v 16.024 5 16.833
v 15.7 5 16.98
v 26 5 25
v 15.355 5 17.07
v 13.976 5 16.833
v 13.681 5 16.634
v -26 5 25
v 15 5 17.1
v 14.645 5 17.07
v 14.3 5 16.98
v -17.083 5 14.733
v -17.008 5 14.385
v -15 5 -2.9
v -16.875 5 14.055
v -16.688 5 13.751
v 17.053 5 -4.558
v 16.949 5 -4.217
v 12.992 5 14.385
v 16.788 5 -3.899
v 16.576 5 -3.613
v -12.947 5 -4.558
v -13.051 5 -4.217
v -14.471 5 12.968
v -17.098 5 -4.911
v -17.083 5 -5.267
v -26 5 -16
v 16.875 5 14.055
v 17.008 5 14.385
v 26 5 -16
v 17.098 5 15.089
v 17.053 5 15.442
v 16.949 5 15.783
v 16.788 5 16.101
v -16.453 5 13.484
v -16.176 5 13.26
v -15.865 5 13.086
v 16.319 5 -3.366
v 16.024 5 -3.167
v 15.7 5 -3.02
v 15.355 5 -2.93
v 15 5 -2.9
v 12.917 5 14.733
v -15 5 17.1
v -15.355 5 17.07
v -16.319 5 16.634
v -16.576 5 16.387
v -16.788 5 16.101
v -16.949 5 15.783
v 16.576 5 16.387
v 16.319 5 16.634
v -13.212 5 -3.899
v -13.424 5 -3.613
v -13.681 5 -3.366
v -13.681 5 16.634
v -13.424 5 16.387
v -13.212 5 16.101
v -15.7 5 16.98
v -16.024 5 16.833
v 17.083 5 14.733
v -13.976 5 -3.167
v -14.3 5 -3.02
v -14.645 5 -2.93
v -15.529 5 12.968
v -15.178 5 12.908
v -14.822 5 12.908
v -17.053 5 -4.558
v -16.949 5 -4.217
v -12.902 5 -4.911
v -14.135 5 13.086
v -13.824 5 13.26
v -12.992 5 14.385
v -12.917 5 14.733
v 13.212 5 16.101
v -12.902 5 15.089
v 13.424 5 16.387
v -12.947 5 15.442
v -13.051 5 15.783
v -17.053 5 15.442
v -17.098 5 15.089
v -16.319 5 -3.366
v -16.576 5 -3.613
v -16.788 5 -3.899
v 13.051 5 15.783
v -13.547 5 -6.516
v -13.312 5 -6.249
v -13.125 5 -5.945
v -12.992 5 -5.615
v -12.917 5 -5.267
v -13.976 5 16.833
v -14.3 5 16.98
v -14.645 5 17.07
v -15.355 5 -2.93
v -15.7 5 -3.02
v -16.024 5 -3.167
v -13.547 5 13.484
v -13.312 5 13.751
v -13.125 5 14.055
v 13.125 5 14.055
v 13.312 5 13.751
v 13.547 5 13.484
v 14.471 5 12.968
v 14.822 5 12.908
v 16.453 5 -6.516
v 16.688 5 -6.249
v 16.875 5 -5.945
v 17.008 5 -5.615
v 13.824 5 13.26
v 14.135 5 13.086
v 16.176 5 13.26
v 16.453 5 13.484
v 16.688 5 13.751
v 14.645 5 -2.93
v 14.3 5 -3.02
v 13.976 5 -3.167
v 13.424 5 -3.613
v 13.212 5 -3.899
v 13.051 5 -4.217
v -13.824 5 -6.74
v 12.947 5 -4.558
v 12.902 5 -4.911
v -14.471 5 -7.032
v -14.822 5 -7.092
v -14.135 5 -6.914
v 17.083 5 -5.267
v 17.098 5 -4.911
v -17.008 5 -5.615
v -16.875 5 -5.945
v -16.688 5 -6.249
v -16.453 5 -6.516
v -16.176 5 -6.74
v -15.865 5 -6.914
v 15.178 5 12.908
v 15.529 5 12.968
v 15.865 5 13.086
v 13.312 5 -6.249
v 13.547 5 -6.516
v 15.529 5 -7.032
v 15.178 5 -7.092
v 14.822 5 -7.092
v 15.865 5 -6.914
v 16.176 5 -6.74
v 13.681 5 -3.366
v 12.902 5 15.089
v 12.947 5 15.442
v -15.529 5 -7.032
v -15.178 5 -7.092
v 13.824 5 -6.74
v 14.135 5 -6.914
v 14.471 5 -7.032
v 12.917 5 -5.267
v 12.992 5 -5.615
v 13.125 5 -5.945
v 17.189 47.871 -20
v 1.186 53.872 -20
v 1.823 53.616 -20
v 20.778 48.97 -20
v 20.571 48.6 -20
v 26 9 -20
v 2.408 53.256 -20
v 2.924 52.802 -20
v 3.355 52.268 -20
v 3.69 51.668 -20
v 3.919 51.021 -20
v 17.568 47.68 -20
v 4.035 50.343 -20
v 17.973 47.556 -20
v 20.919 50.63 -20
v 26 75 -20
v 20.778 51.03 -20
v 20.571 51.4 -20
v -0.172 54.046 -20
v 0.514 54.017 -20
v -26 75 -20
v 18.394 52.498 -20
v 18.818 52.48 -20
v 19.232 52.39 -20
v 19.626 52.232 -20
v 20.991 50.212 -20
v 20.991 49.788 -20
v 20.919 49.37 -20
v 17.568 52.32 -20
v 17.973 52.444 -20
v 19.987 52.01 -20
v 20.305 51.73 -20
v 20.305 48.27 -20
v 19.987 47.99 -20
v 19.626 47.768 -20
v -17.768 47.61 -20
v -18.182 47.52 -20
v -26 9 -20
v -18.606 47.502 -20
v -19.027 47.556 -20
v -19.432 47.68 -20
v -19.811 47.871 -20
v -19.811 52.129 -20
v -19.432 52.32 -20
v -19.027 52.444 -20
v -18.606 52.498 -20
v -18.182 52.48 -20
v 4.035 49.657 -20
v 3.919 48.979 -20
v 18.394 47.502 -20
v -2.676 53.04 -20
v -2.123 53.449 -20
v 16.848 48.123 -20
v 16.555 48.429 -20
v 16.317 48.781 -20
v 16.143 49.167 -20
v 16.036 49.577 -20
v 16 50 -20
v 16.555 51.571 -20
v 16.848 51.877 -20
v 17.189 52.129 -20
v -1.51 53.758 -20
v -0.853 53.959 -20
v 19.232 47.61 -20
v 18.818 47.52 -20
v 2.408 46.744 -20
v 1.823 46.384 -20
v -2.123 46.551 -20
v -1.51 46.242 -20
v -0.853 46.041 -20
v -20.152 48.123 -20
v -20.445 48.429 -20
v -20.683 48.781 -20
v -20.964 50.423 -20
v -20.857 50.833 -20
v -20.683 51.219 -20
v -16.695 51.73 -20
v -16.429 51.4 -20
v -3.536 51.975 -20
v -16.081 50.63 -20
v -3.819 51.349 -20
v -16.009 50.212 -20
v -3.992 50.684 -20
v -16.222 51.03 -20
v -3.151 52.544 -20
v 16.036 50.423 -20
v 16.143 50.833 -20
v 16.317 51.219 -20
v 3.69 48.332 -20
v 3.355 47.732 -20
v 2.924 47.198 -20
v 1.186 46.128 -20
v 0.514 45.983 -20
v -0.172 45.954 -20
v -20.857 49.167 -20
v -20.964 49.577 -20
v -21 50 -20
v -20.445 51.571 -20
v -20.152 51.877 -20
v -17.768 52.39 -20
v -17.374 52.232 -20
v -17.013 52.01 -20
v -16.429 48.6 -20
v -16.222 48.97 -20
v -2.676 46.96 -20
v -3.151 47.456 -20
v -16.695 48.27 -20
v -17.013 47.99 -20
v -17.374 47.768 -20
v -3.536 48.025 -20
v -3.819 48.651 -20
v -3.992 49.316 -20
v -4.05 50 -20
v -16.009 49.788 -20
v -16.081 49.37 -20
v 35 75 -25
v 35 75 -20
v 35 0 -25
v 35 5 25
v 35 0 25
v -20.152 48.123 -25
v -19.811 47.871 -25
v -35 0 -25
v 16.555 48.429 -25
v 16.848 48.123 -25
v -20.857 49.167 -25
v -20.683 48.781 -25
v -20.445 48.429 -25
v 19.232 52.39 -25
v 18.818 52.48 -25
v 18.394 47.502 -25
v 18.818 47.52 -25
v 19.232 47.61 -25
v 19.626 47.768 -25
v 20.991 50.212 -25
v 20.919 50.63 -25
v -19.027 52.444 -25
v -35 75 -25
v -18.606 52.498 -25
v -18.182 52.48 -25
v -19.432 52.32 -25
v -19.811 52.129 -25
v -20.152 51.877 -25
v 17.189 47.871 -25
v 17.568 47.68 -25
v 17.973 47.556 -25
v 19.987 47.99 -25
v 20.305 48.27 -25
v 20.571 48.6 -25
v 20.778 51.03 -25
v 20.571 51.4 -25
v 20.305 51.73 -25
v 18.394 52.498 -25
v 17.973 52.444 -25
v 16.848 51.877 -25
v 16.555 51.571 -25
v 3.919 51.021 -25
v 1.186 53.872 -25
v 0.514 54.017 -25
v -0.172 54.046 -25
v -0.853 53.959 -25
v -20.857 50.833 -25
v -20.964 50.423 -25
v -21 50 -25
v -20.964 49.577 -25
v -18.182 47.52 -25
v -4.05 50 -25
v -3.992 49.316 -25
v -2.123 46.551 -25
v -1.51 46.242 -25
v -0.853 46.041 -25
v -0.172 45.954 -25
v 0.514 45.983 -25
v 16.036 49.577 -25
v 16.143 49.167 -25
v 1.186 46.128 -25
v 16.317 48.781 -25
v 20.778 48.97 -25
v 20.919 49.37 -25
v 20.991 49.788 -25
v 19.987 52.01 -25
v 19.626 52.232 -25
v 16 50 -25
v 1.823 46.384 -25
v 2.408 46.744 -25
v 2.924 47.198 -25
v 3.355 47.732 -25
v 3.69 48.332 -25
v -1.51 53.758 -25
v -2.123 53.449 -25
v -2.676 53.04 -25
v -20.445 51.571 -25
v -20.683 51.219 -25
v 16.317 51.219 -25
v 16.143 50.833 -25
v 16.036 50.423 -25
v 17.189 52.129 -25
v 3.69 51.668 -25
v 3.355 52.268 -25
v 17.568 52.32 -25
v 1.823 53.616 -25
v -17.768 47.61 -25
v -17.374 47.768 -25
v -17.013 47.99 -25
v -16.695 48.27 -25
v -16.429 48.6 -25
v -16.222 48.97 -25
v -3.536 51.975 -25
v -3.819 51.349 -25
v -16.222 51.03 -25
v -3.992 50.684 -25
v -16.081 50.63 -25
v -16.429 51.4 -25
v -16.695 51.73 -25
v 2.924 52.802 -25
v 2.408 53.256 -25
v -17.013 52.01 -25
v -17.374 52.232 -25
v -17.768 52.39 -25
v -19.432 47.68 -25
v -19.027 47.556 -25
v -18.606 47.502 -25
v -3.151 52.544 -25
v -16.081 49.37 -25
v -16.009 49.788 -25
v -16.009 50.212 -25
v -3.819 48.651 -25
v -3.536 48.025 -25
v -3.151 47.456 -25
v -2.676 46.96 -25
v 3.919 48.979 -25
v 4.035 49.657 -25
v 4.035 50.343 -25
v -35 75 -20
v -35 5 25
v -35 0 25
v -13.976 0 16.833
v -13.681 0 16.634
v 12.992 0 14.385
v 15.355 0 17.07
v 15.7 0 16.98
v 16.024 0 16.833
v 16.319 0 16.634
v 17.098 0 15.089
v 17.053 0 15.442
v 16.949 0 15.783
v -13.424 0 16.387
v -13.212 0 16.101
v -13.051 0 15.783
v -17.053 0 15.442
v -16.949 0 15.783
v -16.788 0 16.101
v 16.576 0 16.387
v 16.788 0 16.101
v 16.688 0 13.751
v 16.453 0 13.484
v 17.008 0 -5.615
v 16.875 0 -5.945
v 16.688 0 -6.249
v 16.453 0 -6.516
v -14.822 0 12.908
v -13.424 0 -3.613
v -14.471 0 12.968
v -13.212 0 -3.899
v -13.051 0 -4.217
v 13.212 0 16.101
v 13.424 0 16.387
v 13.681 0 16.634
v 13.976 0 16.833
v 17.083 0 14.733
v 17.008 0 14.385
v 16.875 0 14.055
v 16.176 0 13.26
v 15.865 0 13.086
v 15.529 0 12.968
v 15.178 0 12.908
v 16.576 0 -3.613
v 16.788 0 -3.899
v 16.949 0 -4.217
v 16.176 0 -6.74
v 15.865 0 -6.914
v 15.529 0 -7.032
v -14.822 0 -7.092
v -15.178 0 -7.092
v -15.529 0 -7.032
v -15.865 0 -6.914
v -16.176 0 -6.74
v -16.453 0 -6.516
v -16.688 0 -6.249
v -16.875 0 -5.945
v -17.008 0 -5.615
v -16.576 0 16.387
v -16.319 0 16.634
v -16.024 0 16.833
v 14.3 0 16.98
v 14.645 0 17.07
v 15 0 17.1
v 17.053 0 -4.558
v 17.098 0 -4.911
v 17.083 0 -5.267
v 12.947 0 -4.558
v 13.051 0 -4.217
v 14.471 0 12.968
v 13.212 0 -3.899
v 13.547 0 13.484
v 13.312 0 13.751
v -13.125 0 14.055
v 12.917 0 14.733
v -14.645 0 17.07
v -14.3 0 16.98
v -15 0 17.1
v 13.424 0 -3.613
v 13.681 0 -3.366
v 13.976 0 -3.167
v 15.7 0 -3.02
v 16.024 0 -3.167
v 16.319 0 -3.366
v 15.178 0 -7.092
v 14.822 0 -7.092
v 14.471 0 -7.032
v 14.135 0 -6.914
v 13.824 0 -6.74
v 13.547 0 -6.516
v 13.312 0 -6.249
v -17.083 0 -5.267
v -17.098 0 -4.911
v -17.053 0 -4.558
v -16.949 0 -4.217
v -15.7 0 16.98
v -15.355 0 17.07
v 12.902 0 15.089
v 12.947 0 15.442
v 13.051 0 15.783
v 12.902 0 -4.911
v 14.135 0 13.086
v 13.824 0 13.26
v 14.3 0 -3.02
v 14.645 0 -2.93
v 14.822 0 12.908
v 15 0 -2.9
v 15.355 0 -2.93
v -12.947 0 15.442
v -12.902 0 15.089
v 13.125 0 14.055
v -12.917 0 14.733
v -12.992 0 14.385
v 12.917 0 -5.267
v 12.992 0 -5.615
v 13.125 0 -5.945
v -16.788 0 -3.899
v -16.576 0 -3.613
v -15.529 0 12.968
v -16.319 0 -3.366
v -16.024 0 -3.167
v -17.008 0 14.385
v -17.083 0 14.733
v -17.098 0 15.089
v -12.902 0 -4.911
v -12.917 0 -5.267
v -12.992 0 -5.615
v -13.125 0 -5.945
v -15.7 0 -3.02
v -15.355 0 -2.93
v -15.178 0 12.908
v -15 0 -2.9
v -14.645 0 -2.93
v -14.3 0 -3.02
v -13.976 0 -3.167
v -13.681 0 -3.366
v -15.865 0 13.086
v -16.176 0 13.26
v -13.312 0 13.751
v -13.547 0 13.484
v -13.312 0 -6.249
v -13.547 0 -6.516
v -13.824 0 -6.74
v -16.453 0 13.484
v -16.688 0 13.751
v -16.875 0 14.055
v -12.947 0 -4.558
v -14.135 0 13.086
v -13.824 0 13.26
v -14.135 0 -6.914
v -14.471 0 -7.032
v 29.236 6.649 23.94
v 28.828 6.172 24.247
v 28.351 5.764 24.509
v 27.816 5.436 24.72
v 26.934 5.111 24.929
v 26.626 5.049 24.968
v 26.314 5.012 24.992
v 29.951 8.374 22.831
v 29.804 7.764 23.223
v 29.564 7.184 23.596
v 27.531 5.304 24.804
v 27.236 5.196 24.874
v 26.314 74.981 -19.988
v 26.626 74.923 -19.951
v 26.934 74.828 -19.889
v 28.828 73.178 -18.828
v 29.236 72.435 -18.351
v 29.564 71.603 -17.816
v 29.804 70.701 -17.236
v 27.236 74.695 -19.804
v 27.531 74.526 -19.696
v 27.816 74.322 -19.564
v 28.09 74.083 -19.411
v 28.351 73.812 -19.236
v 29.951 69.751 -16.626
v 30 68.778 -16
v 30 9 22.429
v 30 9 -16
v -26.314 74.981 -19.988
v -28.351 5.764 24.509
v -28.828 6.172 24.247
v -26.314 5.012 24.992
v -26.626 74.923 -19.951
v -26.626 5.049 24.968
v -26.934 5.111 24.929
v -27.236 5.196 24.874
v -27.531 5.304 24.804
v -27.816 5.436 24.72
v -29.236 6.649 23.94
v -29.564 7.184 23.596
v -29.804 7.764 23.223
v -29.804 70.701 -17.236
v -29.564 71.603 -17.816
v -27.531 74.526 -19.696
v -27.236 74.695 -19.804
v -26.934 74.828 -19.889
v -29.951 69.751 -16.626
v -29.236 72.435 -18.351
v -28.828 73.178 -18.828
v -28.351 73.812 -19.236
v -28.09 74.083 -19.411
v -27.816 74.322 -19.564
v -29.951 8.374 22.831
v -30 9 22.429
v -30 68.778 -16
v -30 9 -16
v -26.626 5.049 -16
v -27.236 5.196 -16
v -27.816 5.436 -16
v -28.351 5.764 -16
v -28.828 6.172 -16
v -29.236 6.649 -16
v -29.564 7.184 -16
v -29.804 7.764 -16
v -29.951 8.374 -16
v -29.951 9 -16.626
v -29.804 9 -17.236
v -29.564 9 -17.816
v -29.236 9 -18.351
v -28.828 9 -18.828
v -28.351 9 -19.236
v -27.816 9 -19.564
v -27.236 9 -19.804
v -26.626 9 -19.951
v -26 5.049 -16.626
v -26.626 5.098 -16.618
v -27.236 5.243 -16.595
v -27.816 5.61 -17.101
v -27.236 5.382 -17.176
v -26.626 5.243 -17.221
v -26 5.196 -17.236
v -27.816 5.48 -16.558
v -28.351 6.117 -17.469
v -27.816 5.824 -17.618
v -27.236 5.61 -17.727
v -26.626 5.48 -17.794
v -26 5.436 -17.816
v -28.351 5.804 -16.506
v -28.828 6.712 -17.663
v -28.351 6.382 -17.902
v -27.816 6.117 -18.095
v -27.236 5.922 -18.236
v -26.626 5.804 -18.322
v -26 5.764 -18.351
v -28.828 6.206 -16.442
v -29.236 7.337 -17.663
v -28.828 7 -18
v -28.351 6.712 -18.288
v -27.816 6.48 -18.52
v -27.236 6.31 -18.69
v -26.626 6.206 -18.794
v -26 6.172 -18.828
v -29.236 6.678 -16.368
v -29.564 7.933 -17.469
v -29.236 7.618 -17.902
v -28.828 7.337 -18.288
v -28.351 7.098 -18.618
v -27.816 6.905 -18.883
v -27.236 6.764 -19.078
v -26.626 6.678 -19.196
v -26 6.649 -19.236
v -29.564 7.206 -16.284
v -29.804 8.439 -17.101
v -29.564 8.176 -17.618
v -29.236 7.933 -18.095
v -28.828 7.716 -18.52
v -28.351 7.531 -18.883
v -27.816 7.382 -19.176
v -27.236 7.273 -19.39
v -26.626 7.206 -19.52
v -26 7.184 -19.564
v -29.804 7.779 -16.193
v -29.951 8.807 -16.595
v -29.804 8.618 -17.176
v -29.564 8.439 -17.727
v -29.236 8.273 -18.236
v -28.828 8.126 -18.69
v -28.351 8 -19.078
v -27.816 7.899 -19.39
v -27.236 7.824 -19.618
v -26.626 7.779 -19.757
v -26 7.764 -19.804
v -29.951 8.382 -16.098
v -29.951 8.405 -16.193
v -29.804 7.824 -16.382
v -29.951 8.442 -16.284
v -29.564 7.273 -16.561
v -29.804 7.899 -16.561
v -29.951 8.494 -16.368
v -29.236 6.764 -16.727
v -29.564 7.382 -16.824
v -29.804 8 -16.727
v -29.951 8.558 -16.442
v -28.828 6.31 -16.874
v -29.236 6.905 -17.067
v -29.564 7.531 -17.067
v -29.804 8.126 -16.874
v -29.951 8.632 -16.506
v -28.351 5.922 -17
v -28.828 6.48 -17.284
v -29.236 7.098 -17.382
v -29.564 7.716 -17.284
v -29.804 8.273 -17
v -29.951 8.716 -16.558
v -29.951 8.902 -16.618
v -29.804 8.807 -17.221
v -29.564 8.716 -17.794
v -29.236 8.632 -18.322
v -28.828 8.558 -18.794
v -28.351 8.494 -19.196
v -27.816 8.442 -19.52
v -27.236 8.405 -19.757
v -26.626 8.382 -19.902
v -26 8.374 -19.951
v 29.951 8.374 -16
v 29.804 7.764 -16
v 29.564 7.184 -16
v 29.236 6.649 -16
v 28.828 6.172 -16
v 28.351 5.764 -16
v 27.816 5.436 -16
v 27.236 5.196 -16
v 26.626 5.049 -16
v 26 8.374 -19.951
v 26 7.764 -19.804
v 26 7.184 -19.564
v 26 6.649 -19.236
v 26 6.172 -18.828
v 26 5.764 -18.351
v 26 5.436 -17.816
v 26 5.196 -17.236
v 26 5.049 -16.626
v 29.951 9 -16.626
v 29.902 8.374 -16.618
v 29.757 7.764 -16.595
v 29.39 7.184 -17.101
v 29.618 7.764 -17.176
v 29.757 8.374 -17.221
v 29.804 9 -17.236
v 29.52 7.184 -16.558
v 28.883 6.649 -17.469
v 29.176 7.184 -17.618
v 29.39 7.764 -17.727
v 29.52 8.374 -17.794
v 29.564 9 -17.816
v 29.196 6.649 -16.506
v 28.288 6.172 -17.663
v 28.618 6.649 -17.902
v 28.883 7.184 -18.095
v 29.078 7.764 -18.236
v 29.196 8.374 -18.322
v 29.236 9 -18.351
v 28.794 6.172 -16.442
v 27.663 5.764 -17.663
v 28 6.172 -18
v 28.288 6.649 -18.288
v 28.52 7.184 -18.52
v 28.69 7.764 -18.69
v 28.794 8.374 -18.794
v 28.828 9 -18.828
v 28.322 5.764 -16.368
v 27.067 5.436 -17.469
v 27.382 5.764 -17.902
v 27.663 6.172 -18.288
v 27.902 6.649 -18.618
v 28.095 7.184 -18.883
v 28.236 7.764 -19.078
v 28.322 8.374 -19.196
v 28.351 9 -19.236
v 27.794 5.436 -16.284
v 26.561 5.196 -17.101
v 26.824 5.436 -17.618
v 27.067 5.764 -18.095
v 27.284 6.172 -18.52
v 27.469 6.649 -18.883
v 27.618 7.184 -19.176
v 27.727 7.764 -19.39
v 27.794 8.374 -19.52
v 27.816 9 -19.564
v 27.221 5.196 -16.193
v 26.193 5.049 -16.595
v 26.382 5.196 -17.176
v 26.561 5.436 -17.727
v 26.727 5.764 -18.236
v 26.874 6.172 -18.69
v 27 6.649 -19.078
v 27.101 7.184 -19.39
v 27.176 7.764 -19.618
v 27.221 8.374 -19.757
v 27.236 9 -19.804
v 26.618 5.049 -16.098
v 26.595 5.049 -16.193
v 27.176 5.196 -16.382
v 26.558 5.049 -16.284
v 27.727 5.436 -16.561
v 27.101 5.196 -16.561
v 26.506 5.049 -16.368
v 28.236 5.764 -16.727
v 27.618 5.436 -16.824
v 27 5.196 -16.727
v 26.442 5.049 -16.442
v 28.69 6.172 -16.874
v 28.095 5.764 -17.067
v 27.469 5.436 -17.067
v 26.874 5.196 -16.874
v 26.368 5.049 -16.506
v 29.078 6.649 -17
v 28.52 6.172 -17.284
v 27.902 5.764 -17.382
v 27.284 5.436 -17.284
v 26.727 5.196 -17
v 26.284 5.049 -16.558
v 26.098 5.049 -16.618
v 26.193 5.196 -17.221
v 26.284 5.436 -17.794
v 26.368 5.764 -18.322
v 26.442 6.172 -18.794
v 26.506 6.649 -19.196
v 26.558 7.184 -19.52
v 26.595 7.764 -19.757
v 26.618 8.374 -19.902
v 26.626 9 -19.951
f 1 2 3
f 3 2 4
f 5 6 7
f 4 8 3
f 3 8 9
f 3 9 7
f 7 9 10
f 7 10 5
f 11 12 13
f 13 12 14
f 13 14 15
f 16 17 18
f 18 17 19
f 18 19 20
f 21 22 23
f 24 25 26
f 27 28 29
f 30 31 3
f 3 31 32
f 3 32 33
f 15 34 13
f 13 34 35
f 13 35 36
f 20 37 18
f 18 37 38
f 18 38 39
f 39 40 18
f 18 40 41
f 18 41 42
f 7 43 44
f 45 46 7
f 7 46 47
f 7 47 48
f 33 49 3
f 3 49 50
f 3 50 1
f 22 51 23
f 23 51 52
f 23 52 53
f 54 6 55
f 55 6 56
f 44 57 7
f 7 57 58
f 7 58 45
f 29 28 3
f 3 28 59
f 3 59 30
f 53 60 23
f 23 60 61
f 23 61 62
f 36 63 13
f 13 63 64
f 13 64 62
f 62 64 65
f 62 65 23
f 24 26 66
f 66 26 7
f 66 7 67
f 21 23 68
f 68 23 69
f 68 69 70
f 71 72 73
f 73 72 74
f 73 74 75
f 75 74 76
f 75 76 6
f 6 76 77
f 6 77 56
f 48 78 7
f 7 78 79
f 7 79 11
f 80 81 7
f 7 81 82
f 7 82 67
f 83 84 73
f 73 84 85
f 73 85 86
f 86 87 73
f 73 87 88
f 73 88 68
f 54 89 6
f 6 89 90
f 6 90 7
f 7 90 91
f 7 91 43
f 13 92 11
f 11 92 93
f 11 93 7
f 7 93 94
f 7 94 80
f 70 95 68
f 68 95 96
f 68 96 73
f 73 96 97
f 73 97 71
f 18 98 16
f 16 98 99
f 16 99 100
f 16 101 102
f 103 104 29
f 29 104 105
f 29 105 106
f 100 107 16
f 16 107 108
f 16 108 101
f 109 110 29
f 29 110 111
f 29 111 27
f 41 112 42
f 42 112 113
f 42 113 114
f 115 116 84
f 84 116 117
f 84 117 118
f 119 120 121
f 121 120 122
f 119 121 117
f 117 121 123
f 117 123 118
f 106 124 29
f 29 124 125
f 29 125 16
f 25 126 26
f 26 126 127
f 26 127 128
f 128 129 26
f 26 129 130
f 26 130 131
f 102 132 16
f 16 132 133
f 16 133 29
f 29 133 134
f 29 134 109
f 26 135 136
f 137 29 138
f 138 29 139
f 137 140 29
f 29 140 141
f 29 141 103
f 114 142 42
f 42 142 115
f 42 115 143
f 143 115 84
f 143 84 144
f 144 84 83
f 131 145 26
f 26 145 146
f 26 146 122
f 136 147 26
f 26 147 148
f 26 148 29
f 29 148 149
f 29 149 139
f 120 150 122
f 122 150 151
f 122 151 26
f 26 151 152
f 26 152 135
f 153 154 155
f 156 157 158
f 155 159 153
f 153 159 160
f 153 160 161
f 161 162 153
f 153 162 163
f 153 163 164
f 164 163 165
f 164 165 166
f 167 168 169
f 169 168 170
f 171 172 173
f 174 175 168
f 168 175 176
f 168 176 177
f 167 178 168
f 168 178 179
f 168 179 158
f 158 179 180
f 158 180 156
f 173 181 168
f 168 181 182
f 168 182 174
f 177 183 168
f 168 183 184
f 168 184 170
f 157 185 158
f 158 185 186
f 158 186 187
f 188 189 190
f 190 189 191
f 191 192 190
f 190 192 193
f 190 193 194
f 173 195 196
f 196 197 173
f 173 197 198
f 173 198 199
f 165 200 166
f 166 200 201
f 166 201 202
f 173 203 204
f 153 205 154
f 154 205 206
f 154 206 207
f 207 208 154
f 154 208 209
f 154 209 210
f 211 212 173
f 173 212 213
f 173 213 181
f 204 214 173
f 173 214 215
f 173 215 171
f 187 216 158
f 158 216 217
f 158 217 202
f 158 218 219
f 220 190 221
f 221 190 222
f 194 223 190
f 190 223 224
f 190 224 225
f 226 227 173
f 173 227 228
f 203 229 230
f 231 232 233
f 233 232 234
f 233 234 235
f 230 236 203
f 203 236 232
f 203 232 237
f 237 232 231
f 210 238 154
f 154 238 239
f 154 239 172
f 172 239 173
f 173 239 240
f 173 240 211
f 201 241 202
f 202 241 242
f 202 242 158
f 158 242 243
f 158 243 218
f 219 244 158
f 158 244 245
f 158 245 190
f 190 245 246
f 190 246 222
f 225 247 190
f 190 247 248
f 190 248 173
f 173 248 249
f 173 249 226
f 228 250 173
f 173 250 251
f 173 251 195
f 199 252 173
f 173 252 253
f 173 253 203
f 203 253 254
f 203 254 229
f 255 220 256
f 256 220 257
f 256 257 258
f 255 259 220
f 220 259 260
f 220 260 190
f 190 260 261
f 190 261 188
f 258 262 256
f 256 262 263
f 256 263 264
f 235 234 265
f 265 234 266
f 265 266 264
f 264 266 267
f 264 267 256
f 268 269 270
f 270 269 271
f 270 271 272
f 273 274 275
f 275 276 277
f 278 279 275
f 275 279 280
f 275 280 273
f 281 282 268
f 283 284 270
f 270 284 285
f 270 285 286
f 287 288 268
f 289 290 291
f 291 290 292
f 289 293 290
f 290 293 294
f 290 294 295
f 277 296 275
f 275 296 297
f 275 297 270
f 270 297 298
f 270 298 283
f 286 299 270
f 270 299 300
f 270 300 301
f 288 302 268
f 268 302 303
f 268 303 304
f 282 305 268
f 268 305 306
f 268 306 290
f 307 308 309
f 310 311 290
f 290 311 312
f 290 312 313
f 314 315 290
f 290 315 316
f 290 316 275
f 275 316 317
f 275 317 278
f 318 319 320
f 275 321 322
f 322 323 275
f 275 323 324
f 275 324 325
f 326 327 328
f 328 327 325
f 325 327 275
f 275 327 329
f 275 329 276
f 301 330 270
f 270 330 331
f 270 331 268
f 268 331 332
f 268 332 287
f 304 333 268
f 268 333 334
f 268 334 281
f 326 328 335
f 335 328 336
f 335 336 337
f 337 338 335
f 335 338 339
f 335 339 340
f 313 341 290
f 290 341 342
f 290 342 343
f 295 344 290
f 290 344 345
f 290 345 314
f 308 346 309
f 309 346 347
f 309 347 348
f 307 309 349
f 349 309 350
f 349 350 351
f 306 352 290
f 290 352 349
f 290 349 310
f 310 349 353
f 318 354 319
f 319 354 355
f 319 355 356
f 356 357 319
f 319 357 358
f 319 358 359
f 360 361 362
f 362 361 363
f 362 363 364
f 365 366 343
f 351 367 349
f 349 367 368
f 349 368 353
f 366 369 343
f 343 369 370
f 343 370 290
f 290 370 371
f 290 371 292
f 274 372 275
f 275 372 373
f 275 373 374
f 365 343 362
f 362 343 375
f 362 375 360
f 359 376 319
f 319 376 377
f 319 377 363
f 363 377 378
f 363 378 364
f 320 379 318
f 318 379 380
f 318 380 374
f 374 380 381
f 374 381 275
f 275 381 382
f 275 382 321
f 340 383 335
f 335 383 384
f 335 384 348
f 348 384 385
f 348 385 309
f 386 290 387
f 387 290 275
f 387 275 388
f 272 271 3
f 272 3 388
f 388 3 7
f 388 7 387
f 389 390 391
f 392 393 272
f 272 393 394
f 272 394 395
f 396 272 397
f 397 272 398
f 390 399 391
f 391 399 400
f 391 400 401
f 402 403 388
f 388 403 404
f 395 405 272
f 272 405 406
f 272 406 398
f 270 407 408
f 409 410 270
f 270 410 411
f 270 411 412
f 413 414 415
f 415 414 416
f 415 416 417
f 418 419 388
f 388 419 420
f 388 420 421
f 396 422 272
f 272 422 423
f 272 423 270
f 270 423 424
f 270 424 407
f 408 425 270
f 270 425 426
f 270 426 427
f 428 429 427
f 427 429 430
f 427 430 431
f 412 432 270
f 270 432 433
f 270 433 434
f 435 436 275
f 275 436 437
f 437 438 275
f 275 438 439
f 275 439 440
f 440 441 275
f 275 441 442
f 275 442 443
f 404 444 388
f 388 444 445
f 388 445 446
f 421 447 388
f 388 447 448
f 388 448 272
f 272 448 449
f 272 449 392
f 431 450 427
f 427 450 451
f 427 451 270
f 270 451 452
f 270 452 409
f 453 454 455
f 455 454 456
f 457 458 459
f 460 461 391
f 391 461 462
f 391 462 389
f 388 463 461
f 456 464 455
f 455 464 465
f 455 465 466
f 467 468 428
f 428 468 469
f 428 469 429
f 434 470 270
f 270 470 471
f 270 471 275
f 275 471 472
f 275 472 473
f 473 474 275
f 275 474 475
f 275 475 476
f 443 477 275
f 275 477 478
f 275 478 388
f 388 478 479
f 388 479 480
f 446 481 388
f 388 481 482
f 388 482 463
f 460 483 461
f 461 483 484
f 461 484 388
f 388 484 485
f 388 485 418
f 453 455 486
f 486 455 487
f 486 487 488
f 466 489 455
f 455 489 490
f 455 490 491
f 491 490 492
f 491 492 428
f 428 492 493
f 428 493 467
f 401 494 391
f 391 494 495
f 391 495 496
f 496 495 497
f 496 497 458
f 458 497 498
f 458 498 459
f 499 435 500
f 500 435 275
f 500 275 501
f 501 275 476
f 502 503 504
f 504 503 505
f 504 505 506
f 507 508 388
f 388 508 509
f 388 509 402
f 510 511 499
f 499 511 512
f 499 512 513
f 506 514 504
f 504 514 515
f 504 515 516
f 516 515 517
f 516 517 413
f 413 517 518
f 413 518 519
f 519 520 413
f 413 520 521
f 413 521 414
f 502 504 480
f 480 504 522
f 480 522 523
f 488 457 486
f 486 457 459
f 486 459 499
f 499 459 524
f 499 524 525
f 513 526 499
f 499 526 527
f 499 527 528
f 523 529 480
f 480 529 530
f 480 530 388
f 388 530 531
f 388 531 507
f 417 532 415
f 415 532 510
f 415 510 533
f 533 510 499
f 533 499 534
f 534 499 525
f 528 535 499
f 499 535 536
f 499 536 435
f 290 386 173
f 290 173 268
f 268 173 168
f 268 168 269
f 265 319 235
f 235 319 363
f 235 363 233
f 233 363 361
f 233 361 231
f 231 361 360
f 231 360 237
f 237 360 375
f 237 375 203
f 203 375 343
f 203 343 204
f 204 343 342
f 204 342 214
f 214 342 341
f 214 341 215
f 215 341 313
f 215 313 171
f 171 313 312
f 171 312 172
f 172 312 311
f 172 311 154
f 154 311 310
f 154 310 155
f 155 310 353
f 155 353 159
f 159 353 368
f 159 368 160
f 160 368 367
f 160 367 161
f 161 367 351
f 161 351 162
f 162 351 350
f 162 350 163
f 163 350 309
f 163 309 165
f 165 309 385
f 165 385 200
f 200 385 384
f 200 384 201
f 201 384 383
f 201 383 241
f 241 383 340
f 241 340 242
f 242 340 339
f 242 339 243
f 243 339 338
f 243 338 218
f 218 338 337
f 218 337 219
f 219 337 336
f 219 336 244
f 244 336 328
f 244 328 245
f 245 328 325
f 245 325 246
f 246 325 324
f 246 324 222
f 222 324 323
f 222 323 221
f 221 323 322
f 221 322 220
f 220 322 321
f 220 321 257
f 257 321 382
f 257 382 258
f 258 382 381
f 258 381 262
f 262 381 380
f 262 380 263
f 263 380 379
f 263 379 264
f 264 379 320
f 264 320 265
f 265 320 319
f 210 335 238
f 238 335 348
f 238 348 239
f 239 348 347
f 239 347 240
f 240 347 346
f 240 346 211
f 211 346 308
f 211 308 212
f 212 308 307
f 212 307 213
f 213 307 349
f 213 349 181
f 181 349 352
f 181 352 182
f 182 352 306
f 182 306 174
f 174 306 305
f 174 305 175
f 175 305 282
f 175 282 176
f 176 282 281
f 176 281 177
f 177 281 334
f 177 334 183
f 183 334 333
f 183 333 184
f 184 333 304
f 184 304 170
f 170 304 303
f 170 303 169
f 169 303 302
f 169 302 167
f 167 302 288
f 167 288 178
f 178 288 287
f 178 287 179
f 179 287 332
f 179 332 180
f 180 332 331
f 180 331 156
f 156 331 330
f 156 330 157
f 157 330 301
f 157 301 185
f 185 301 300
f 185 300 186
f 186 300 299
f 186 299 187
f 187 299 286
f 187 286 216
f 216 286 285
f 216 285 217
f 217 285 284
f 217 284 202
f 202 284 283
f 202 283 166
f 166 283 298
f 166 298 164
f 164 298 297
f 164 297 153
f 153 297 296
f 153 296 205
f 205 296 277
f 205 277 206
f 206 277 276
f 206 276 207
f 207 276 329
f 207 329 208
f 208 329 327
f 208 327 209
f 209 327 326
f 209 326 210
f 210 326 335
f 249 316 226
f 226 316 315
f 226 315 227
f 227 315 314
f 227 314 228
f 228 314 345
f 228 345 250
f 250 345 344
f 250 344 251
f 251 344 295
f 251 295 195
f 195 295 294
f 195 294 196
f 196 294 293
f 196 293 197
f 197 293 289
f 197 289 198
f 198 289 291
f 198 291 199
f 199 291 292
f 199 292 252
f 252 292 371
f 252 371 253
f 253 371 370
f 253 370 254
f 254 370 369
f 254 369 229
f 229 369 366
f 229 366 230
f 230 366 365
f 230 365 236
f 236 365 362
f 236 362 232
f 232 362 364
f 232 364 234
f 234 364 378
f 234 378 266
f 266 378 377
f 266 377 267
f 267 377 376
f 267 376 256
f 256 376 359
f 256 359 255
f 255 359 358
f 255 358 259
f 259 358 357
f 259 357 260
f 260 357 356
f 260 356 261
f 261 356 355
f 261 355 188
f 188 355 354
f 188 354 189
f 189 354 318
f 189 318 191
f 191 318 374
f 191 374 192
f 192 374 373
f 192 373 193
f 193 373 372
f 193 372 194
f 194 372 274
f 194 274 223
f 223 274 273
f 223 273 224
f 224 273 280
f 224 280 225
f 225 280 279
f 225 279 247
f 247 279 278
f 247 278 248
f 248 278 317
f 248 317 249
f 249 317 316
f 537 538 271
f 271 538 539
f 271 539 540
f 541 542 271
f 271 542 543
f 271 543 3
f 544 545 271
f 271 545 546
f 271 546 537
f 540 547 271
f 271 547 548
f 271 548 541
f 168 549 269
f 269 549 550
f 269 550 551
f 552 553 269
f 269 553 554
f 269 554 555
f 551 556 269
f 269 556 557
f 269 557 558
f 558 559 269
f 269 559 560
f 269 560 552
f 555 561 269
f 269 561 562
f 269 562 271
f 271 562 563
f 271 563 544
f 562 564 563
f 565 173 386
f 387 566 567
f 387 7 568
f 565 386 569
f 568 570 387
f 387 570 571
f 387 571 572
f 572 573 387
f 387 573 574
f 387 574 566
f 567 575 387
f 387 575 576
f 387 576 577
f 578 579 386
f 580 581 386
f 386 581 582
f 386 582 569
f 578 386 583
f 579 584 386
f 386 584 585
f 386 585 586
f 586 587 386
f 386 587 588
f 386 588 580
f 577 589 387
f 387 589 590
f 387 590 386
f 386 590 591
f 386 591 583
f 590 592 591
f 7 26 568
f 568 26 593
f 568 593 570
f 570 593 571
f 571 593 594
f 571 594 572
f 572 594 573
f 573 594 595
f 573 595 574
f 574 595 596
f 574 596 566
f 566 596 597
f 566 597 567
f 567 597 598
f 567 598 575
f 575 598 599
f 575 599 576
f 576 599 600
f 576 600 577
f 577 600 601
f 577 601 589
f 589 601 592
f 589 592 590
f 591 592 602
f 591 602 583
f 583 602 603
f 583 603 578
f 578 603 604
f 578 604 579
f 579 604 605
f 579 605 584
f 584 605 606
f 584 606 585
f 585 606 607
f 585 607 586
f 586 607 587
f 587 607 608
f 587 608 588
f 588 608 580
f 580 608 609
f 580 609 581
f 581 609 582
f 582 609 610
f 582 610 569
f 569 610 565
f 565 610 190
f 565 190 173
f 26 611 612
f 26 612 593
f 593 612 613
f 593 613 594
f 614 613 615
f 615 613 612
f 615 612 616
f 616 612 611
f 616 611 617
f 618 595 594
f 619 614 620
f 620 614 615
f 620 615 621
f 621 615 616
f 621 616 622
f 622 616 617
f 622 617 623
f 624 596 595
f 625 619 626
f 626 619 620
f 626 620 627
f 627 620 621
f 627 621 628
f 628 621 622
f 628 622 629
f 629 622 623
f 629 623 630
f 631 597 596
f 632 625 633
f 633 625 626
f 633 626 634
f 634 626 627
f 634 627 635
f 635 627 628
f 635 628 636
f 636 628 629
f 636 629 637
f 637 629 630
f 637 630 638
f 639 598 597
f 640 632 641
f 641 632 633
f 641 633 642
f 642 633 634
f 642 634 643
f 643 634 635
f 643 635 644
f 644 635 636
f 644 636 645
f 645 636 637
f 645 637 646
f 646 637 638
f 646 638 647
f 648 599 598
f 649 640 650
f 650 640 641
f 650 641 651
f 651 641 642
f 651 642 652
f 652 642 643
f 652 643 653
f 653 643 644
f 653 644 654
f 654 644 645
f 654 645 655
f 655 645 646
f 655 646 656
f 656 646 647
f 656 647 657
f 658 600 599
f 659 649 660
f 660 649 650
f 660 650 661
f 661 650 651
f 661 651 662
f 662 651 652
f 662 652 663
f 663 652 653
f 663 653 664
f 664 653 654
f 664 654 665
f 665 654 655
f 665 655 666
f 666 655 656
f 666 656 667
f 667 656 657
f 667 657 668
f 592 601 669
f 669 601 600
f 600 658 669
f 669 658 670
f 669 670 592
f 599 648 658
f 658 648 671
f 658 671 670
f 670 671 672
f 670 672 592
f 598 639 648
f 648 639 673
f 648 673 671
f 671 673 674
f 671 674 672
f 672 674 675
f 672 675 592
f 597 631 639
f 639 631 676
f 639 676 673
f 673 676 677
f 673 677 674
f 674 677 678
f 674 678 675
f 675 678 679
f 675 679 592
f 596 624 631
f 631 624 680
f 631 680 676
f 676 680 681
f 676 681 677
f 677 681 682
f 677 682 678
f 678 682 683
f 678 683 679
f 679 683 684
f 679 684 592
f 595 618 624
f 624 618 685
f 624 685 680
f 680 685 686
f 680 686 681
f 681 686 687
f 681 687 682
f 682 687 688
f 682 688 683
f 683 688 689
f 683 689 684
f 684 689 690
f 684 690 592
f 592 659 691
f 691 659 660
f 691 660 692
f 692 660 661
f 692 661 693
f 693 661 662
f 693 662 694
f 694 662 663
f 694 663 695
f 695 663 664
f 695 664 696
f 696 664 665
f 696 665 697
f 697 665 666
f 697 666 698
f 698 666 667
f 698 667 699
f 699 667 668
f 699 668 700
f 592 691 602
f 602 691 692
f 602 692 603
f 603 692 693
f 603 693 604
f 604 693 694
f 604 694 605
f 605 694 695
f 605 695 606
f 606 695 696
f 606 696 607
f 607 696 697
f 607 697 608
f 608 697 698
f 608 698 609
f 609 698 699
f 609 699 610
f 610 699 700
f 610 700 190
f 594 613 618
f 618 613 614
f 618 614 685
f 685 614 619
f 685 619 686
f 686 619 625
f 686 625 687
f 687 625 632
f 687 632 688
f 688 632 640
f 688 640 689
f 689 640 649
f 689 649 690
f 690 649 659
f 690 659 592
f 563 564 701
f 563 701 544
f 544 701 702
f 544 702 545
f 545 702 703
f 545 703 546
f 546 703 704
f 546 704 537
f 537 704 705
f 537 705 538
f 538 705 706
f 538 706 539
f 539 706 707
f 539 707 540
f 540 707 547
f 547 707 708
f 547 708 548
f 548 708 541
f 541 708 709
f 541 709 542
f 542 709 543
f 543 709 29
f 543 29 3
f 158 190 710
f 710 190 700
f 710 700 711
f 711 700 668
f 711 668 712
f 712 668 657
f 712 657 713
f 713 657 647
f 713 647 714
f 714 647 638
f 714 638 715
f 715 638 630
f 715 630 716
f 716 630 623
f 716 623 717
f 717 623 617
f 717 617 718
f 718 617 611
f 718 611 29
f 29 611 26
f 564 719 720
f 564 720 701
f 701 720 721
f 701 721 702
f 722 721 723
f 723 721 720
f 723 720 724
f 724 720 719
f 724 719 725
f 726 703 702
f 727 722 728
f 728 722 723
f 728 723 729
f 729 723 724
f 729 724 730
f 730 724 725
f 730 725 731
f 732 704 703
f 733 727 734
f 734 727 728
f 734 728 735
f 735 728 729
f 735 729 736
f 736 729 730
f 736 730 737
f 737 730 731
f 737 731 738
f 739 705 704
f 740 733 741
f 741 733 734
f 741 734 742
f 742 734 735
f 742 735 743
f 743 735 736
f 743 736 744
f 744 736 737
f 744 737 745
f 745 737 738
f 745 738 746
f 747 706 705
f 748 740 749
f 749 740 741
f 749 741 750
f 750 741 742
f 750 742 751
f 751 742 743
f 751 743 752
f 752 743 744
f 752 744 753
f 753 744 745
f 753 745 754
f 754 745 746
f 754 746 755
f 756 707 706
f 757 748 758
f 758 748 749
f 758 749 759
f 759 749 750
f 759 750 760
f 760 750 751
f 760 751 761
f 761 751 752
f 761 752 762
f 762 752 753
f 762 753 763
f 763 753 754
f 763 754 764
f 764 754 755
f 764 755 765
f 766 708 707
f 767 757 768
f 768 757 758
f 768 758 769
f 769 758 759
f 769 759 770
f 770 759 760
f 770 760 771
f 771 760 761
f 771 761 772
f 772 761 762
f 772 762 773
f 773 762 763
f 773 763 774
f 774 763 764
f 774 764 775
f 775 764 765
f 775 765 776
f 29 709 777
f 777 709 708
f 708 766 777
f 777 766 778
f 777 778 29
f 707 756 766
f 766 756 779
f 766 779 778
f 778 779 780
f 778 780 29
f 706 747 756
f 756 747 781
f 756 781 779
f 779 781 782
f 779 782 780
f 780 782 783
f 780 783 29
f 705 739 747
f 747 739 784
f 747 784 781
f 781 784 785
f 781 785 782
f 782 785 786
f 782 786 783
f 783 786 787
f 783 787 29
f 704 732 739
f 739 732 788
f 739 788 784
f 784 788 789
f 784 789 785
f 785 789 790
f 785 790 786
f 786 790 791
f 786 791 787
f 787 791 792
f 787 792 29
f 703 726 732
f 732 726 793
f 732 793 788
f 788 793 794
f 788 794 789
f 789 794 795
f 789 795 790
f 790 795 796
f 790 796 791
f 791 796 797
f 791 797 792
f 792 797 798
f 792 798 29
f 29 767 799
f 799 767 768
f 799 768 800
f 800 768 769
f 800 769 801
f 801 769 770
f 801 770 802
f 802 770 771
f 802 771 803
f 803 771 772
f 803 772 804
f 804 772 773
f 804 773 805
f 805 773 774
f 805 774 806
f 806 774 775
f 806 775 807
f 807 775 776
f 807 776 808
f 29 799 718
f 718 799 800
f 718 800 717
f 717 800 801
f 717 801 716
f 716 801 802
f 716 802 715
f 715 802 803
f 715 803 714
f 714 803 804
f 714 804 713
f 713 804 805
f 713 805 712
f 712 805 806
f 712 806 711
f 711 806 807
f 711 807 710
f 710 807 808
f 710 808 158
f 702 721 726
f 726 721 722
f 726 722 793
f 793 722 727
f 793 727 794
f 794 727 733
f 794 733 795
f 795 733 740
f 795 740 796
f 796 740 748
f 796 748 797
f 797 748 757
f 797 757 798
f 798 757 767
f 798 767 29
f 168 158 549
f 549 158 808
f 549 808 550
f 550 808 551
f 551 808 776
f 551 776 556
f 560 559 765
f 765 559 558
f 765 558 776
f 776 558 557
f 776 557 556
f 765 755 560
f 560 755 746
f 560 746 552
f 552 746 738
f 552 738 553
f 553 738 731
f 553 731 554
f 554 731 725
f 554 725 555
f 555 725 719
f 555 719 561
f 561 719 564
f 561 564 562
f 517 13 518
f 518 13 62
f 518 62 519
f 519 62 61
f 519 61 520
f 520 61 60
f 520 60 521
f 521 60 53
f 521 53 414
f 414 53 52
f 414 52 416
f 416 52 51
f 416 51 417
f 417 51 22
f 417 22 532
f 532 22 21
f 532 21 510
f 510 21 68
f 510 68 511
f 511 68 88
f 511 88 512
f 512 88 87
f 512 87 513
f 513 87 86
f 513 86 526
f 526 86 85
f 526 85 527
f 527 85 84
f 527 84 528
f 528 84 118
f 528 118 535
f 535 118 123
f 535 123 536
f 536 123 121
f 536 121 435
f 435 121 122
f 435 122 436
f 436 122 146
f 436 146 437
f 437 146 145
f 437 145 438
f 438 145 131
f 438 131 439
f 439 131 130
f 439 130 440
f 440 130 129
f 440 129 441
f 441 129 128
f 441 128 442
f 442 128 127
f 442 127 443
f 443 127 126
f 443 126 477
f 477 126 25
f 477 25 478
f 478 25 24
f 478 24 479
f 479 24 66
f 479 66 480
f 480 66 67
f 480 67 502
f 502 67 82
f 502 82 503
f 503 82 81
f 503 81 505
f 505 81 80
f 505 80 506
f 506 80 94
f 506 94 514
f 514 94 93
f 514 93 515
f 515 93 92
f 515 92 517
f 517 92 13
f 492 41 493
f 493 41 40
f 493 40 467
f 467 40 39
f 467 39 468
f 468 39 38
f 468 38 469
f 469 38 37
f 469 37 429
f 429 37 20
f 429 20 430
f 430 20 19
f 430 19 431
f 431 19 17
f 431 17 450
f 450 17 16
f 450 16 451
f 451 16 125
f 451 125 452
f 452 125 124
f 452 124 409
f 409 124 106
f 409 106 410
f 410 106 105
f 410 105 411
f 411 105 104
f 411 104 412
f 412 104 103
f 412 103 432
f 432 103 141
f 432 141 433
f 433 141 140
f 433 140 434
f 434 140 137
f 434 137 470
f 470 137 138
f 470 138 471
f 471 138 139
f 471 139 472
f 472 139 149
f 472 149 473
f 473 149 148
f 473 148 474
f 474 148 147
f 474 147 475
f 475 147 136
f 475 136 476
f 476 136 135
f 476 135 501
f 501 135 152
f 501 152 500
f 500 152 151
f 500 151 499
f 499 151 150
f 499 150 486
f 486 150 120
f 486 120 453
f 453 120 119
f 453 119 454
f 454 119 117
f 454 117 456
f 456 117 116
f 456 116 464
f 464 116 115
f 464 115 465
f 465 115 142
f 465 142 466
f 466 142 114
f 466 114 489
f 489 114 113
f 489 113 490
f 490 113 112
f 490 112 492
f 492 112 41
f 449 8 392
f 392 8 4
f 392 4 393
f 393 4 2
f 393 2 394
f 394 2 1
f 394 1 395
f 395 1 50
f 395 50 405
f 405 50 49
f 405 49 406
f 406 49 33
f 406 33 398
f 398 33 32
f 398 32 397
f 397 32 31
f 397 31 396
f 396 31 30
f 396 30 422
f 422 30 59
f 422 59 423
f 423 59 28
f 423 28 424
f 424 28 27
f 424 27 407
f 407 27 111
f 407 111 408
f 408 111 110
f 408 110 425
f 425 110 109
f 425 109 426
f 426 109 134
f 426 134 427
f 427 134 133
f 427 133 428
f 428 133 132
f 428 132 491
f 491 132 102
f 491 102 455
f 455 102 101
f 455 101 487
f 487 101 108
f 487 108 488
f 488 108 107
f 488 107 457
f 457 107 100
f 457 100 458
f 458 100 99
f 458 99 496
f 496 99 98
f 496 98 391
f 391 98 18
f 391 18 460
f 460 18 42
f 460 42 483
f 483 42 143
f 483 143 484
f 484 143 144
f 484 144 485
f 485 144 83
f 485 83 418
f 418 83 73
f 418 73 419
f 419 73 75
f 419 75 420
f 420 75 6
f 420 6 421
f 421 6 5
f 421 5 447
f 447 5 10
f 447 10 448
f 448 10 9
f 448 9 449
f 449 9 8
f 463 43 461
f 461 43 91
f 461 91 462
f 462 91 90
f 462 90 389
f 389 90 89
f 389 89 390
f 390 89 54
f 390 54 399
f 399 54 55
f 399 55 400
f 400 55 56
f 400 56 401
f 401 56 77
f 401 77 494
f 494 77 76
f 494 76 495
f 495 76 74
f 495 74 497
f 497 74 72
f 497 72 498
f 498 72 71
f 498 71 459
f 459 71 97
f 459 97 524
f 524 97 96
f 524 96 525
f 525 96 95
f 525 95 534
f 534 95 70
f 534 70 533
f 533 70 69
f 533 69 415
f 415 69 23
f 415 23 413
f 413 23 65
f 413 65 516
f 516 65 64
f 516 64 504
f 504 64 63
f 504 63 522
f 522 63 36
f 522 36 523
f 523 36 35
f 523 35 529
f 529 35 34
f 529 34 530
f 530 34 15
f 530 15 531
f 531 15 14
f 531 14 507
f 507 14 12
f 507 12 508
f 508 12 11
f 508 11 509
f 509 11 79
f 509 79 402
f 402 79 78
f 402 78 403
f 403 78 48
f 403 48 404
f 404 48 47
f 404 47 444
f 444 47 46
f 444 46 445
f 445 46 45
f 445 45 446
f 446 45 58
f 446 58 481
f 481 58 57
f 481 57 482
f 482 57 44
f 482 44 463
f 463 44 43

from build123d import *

# Parameters (mm, degrees)
SKETCH1_W           = 70
SKETCH1_H           = 50
BOSS_EXTRUDE1_DEPTH = 5
SKETCH2_W           = 70
SKETCH2_H           = 5
BOSS_EXTRUDE2_DEPTH = 70
SKETCH3_R           = 4.05
CUT_EXTRUDE1_DEPTH  = 10
SKETCH4_R           = 2.5
CUT_EXTRUDE2_DEPTH  = 10
BOSS_EXTRUDE3_DEPTH = 5
BOSS_EXTRUDE4_DEPTH = 5
FILLET1_R           = 4
SKETCH7_R           = 2.1
CUT_EXTRUDE3_DEPTH  = 5


with BuildPart() as part:
    # Sketch1 → Boss-Extrude1 (new body)
    with BuildSketch(Plane(origin=(0, 0, 0), x_dir=(1, 0, 0), z_dir=(0, 1, 0))):
        Rectangle(SKETCH1_W, SKETCH1_H)
    extrude(amount=BOSS_EXTRUDE1_DEPTH)

    # Sketch2 → Boss-Extrude2 (add)
    with BuildSketch(Plane(origin=(0, 5, 0), x_dir=(1, 0, 0), z_dir=(0, 1, 0))):
        with Locations((0, 22.5)):
            Rectangle(SKETCH2_W, SKETCH2_H)
    extrude(amount=BOSS_EXTRUDE2_DEPTH)

    # Sketch3 → Cut-Extrude1 (cut)
    with BuildSketch(Plane(origin=(0, 0, -25), x_dir=(-1, 0, 0), z_dir=(0, 0, -1))):
        with Locations((0, 50)):
            Circle(SKETCH3_R)
    extrude(amount=-CUT_EXTRUDE1_DEPTH, mode=Mode.SUBTRACT)

    # Sketch4 → Cut-Extrude2 (cut)
    with BuildSketch(Plane(origin=(0, 0, -25), x_dir=(-1, 0, 0), z_dir=(0, 0, -1))):
        with Locations((-18.5, 50)):
            Circle(SKETCH4_R)
        with Locations((18.5, 50)):
            Circle(SKETCH4_R)
    extrude(amount=-CUT_EXTRUDE2_DEPTH, mode=Mode.SUBTRACT)

    # Sketch5 → Boss-Extrude3 (add)
    with BuildSketch(Plane(origin=(35, 0, 0), x_dir=(0, 0, -1), z_dir=(1, 0, 0))):
        Polygon((20, 75), (-25, 5), (20, 5), align=None)
    extrude(amount=-BOSS_EXTRUDE3_DEPTH)

    # Sketch6 → Boss-Extrude4 (add)
    with BuildSketch(Plane.ZY.offset(35)):
        Polygon((-20, 75), (25, 5), (-20, 5), align=None)
    extrude(amount=-BOSS_EXTRUDE4_DEPTH)

    # Fillet1
    fillet1_edges = [part.edges().sort_by_distance(p)[0] for p in [
        (30, 40, -20),
        (30, 5, 2.5),
        (0, 5, -20),
        (-30, 40, -20),
        (-30, 5, 2.5),
    ]]
    fillet(fillet1_edges, radius=FILLET1_R)

    # Sketch7 → Cut-Extrude3 (cut)
    with BuildSketch(Plane(origin=(0, 5, 0), x_dir=(1, 0, 0), z_dir=(0, 1, 0))):
        with Locations(Location((-15, 5, 0), (0, 0, 270))):
            Circle(SKETCH7_R)
        with Locations(Location((15, 5, 0), (0, 0, 270))):
            Circle(SKETCH7_R)
        with Locations(Location((15, -15, 0), (0, 0, 270))):
            Circle(SKETCH7_R)
        with Locations(Location((-15, -15, 0), (0, 0, 270))):
            Circle(SKETCH7_R)
    extrude(amount=-CUT_EXTRUDE3_DEPTH, mode=Mode.SUBTRACT)


solid = part.part
